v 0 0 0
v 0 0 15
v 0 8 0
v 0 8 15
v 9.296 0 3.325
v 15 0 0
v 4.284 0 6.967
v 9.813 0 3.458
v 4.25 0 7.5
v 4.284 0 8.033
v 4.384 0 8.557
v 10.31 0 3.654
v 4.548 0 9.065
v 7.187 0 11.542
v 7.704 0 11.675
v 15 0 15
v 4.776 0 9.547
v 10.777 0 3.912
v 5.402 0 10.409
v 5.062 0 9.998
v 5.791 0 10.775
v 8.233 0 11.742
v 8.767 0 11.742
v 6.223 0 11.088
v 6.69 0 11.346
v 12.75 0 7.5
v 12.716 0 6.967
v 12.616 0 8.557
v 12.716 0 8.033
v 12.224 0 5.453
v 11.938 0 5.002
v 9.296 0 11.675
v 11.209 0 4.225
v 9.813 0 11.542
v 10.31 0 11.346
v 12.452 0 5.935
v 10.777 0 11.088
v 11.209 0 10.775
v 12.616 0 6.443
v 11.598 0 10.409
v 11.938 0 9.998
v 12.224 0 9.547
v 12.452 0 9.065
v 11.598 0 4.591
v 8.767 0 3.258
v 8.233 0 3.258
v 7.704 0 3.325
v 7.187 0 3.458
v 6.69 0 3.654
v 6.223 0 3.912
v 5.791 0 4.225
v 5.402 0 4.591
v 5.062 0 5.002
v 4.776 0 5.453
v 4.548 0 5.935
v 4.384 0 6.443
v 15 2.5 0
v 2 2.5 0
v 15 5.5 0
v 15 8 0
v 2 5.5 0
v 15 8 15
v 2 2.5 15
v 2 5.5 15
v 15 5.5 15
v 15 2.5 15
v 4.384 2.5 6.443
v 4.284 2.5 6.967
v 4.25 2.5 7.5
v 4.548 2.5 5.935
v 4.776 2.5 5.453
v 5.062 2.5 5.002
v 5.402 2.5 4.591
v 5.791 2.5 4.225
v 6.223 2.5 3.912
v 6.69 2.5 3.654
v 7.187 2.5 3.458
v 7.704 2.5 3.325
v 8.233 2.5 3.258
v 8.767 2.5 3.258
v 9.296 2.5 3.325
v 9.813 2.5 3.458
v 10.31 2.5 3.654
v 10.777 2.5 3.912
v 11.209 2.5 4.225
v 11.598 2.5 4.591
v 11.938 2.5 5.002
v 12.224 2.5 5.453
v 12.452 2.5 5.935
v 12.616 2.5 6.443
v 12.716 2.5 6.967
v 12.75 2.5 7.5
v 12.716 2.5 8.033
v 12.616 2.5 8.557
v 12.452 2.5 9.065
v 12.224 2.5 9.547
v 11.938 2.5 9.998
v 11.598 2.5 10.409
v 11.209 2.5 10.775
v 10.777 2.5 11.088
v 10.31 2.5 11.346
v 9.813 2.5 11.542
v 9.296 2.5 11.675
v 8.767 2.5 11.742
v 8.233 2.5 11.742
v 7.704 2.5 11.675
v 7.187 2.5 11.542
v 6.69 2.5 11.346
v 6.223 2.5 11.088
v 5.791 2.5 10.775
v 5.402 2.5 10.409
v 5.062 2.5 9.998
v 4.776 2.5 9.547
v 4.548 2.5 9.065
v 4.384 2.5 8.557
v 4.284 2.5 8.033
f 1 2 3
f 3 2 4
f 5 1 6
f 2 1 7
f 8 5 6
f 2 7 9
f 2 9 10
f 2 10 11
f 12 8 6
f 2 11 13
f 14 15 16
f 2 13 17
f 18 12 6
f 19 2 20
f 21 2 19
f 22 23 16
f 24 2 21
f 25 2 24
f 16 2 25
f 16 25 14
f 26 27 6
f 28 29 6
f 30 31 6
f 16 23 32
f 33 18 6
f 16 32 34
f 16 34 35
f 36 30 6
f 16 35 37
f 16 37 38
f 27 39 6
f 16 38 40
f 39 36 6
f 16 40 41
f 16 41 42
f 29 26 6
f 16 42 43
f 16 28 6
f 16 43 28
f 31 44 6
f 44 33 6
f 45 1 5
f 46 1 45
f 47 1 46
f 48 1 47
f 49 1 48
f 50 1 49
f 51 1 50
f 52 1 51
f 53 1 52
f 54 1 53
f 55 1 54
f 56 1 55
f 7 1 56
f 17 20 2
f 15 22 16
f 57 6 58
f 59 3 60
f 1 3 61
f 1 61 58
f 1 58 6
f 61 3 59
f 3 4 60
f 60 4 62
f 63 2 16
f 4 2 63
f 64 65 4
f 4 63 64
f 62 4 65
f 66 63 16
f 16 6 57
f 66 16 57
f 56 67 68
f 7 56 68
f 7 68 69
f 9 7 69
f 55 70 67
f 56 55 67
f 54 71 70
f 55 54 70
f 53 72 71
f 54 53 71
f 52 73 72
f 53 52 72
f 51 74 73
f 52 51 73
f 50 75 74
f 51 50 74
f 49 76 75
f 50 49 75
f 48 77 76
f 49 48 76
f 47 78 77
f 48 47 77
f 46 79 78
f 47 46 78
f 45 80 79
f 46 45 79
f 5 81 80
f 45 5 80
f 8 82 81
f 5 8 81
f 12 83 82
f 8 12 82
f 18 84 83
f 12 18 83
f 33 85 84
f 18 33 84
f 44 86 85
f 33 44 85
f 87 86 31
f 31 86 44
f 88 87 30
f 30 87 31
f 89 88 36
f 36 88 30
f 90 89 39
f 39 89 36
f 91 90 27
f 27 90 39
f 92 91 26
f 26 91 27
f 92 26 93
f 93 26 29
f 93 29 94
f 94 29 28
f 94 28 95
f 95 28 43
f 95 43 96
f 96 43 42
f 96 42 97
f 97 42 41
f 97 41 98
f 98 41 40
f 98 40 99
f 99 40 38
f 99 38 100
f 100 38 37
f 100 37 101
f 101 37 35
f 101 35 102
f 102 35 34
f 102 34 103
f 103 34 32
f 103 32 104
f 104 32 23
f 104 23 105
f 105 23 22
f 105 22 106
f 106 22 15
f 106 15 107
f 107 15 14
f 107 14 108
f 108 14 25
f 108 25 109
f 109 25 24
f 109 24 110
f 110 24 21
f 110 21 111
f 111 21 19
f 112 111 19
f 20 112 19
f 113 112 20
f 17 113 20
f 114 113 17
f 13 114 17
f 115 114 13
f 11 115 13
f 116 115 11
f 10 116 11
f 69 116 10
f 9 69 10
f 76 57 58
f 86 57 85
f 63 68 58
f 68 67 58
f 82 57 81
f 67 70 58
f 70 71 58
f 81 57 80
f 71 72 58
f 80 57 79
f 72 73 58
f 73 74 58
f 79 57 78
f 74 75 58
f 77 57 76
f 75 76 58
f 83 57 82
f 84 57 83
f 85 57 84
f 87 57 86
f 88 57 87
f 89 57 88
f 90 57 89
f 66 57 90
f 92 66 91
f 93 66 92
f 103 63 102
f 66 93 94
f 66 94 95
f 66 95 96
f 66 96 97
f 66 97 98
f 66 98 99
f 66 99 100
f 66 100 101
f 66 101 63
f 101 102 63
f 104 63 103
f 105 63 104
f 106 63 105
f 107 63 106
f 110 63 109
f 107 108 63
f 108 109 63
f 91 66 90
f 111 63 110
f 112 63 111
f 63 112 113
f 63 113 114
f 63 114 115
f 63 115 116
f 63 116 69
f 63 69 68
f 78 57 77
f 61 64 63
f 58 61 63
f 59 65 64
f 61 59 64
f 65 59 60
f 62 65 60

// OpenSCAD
difference()
{
    cube(size=[15, 8, 15]);
    translate(v = [2, 2.5, -1])
        cube(size = [15, 3, 17]);
    translate(v = [7.5 + 1, 3, 7.5])
        rotate(a = [90, 0, 0])
            cylinder(h = 10, r = 4.25, $fn=50);
}
